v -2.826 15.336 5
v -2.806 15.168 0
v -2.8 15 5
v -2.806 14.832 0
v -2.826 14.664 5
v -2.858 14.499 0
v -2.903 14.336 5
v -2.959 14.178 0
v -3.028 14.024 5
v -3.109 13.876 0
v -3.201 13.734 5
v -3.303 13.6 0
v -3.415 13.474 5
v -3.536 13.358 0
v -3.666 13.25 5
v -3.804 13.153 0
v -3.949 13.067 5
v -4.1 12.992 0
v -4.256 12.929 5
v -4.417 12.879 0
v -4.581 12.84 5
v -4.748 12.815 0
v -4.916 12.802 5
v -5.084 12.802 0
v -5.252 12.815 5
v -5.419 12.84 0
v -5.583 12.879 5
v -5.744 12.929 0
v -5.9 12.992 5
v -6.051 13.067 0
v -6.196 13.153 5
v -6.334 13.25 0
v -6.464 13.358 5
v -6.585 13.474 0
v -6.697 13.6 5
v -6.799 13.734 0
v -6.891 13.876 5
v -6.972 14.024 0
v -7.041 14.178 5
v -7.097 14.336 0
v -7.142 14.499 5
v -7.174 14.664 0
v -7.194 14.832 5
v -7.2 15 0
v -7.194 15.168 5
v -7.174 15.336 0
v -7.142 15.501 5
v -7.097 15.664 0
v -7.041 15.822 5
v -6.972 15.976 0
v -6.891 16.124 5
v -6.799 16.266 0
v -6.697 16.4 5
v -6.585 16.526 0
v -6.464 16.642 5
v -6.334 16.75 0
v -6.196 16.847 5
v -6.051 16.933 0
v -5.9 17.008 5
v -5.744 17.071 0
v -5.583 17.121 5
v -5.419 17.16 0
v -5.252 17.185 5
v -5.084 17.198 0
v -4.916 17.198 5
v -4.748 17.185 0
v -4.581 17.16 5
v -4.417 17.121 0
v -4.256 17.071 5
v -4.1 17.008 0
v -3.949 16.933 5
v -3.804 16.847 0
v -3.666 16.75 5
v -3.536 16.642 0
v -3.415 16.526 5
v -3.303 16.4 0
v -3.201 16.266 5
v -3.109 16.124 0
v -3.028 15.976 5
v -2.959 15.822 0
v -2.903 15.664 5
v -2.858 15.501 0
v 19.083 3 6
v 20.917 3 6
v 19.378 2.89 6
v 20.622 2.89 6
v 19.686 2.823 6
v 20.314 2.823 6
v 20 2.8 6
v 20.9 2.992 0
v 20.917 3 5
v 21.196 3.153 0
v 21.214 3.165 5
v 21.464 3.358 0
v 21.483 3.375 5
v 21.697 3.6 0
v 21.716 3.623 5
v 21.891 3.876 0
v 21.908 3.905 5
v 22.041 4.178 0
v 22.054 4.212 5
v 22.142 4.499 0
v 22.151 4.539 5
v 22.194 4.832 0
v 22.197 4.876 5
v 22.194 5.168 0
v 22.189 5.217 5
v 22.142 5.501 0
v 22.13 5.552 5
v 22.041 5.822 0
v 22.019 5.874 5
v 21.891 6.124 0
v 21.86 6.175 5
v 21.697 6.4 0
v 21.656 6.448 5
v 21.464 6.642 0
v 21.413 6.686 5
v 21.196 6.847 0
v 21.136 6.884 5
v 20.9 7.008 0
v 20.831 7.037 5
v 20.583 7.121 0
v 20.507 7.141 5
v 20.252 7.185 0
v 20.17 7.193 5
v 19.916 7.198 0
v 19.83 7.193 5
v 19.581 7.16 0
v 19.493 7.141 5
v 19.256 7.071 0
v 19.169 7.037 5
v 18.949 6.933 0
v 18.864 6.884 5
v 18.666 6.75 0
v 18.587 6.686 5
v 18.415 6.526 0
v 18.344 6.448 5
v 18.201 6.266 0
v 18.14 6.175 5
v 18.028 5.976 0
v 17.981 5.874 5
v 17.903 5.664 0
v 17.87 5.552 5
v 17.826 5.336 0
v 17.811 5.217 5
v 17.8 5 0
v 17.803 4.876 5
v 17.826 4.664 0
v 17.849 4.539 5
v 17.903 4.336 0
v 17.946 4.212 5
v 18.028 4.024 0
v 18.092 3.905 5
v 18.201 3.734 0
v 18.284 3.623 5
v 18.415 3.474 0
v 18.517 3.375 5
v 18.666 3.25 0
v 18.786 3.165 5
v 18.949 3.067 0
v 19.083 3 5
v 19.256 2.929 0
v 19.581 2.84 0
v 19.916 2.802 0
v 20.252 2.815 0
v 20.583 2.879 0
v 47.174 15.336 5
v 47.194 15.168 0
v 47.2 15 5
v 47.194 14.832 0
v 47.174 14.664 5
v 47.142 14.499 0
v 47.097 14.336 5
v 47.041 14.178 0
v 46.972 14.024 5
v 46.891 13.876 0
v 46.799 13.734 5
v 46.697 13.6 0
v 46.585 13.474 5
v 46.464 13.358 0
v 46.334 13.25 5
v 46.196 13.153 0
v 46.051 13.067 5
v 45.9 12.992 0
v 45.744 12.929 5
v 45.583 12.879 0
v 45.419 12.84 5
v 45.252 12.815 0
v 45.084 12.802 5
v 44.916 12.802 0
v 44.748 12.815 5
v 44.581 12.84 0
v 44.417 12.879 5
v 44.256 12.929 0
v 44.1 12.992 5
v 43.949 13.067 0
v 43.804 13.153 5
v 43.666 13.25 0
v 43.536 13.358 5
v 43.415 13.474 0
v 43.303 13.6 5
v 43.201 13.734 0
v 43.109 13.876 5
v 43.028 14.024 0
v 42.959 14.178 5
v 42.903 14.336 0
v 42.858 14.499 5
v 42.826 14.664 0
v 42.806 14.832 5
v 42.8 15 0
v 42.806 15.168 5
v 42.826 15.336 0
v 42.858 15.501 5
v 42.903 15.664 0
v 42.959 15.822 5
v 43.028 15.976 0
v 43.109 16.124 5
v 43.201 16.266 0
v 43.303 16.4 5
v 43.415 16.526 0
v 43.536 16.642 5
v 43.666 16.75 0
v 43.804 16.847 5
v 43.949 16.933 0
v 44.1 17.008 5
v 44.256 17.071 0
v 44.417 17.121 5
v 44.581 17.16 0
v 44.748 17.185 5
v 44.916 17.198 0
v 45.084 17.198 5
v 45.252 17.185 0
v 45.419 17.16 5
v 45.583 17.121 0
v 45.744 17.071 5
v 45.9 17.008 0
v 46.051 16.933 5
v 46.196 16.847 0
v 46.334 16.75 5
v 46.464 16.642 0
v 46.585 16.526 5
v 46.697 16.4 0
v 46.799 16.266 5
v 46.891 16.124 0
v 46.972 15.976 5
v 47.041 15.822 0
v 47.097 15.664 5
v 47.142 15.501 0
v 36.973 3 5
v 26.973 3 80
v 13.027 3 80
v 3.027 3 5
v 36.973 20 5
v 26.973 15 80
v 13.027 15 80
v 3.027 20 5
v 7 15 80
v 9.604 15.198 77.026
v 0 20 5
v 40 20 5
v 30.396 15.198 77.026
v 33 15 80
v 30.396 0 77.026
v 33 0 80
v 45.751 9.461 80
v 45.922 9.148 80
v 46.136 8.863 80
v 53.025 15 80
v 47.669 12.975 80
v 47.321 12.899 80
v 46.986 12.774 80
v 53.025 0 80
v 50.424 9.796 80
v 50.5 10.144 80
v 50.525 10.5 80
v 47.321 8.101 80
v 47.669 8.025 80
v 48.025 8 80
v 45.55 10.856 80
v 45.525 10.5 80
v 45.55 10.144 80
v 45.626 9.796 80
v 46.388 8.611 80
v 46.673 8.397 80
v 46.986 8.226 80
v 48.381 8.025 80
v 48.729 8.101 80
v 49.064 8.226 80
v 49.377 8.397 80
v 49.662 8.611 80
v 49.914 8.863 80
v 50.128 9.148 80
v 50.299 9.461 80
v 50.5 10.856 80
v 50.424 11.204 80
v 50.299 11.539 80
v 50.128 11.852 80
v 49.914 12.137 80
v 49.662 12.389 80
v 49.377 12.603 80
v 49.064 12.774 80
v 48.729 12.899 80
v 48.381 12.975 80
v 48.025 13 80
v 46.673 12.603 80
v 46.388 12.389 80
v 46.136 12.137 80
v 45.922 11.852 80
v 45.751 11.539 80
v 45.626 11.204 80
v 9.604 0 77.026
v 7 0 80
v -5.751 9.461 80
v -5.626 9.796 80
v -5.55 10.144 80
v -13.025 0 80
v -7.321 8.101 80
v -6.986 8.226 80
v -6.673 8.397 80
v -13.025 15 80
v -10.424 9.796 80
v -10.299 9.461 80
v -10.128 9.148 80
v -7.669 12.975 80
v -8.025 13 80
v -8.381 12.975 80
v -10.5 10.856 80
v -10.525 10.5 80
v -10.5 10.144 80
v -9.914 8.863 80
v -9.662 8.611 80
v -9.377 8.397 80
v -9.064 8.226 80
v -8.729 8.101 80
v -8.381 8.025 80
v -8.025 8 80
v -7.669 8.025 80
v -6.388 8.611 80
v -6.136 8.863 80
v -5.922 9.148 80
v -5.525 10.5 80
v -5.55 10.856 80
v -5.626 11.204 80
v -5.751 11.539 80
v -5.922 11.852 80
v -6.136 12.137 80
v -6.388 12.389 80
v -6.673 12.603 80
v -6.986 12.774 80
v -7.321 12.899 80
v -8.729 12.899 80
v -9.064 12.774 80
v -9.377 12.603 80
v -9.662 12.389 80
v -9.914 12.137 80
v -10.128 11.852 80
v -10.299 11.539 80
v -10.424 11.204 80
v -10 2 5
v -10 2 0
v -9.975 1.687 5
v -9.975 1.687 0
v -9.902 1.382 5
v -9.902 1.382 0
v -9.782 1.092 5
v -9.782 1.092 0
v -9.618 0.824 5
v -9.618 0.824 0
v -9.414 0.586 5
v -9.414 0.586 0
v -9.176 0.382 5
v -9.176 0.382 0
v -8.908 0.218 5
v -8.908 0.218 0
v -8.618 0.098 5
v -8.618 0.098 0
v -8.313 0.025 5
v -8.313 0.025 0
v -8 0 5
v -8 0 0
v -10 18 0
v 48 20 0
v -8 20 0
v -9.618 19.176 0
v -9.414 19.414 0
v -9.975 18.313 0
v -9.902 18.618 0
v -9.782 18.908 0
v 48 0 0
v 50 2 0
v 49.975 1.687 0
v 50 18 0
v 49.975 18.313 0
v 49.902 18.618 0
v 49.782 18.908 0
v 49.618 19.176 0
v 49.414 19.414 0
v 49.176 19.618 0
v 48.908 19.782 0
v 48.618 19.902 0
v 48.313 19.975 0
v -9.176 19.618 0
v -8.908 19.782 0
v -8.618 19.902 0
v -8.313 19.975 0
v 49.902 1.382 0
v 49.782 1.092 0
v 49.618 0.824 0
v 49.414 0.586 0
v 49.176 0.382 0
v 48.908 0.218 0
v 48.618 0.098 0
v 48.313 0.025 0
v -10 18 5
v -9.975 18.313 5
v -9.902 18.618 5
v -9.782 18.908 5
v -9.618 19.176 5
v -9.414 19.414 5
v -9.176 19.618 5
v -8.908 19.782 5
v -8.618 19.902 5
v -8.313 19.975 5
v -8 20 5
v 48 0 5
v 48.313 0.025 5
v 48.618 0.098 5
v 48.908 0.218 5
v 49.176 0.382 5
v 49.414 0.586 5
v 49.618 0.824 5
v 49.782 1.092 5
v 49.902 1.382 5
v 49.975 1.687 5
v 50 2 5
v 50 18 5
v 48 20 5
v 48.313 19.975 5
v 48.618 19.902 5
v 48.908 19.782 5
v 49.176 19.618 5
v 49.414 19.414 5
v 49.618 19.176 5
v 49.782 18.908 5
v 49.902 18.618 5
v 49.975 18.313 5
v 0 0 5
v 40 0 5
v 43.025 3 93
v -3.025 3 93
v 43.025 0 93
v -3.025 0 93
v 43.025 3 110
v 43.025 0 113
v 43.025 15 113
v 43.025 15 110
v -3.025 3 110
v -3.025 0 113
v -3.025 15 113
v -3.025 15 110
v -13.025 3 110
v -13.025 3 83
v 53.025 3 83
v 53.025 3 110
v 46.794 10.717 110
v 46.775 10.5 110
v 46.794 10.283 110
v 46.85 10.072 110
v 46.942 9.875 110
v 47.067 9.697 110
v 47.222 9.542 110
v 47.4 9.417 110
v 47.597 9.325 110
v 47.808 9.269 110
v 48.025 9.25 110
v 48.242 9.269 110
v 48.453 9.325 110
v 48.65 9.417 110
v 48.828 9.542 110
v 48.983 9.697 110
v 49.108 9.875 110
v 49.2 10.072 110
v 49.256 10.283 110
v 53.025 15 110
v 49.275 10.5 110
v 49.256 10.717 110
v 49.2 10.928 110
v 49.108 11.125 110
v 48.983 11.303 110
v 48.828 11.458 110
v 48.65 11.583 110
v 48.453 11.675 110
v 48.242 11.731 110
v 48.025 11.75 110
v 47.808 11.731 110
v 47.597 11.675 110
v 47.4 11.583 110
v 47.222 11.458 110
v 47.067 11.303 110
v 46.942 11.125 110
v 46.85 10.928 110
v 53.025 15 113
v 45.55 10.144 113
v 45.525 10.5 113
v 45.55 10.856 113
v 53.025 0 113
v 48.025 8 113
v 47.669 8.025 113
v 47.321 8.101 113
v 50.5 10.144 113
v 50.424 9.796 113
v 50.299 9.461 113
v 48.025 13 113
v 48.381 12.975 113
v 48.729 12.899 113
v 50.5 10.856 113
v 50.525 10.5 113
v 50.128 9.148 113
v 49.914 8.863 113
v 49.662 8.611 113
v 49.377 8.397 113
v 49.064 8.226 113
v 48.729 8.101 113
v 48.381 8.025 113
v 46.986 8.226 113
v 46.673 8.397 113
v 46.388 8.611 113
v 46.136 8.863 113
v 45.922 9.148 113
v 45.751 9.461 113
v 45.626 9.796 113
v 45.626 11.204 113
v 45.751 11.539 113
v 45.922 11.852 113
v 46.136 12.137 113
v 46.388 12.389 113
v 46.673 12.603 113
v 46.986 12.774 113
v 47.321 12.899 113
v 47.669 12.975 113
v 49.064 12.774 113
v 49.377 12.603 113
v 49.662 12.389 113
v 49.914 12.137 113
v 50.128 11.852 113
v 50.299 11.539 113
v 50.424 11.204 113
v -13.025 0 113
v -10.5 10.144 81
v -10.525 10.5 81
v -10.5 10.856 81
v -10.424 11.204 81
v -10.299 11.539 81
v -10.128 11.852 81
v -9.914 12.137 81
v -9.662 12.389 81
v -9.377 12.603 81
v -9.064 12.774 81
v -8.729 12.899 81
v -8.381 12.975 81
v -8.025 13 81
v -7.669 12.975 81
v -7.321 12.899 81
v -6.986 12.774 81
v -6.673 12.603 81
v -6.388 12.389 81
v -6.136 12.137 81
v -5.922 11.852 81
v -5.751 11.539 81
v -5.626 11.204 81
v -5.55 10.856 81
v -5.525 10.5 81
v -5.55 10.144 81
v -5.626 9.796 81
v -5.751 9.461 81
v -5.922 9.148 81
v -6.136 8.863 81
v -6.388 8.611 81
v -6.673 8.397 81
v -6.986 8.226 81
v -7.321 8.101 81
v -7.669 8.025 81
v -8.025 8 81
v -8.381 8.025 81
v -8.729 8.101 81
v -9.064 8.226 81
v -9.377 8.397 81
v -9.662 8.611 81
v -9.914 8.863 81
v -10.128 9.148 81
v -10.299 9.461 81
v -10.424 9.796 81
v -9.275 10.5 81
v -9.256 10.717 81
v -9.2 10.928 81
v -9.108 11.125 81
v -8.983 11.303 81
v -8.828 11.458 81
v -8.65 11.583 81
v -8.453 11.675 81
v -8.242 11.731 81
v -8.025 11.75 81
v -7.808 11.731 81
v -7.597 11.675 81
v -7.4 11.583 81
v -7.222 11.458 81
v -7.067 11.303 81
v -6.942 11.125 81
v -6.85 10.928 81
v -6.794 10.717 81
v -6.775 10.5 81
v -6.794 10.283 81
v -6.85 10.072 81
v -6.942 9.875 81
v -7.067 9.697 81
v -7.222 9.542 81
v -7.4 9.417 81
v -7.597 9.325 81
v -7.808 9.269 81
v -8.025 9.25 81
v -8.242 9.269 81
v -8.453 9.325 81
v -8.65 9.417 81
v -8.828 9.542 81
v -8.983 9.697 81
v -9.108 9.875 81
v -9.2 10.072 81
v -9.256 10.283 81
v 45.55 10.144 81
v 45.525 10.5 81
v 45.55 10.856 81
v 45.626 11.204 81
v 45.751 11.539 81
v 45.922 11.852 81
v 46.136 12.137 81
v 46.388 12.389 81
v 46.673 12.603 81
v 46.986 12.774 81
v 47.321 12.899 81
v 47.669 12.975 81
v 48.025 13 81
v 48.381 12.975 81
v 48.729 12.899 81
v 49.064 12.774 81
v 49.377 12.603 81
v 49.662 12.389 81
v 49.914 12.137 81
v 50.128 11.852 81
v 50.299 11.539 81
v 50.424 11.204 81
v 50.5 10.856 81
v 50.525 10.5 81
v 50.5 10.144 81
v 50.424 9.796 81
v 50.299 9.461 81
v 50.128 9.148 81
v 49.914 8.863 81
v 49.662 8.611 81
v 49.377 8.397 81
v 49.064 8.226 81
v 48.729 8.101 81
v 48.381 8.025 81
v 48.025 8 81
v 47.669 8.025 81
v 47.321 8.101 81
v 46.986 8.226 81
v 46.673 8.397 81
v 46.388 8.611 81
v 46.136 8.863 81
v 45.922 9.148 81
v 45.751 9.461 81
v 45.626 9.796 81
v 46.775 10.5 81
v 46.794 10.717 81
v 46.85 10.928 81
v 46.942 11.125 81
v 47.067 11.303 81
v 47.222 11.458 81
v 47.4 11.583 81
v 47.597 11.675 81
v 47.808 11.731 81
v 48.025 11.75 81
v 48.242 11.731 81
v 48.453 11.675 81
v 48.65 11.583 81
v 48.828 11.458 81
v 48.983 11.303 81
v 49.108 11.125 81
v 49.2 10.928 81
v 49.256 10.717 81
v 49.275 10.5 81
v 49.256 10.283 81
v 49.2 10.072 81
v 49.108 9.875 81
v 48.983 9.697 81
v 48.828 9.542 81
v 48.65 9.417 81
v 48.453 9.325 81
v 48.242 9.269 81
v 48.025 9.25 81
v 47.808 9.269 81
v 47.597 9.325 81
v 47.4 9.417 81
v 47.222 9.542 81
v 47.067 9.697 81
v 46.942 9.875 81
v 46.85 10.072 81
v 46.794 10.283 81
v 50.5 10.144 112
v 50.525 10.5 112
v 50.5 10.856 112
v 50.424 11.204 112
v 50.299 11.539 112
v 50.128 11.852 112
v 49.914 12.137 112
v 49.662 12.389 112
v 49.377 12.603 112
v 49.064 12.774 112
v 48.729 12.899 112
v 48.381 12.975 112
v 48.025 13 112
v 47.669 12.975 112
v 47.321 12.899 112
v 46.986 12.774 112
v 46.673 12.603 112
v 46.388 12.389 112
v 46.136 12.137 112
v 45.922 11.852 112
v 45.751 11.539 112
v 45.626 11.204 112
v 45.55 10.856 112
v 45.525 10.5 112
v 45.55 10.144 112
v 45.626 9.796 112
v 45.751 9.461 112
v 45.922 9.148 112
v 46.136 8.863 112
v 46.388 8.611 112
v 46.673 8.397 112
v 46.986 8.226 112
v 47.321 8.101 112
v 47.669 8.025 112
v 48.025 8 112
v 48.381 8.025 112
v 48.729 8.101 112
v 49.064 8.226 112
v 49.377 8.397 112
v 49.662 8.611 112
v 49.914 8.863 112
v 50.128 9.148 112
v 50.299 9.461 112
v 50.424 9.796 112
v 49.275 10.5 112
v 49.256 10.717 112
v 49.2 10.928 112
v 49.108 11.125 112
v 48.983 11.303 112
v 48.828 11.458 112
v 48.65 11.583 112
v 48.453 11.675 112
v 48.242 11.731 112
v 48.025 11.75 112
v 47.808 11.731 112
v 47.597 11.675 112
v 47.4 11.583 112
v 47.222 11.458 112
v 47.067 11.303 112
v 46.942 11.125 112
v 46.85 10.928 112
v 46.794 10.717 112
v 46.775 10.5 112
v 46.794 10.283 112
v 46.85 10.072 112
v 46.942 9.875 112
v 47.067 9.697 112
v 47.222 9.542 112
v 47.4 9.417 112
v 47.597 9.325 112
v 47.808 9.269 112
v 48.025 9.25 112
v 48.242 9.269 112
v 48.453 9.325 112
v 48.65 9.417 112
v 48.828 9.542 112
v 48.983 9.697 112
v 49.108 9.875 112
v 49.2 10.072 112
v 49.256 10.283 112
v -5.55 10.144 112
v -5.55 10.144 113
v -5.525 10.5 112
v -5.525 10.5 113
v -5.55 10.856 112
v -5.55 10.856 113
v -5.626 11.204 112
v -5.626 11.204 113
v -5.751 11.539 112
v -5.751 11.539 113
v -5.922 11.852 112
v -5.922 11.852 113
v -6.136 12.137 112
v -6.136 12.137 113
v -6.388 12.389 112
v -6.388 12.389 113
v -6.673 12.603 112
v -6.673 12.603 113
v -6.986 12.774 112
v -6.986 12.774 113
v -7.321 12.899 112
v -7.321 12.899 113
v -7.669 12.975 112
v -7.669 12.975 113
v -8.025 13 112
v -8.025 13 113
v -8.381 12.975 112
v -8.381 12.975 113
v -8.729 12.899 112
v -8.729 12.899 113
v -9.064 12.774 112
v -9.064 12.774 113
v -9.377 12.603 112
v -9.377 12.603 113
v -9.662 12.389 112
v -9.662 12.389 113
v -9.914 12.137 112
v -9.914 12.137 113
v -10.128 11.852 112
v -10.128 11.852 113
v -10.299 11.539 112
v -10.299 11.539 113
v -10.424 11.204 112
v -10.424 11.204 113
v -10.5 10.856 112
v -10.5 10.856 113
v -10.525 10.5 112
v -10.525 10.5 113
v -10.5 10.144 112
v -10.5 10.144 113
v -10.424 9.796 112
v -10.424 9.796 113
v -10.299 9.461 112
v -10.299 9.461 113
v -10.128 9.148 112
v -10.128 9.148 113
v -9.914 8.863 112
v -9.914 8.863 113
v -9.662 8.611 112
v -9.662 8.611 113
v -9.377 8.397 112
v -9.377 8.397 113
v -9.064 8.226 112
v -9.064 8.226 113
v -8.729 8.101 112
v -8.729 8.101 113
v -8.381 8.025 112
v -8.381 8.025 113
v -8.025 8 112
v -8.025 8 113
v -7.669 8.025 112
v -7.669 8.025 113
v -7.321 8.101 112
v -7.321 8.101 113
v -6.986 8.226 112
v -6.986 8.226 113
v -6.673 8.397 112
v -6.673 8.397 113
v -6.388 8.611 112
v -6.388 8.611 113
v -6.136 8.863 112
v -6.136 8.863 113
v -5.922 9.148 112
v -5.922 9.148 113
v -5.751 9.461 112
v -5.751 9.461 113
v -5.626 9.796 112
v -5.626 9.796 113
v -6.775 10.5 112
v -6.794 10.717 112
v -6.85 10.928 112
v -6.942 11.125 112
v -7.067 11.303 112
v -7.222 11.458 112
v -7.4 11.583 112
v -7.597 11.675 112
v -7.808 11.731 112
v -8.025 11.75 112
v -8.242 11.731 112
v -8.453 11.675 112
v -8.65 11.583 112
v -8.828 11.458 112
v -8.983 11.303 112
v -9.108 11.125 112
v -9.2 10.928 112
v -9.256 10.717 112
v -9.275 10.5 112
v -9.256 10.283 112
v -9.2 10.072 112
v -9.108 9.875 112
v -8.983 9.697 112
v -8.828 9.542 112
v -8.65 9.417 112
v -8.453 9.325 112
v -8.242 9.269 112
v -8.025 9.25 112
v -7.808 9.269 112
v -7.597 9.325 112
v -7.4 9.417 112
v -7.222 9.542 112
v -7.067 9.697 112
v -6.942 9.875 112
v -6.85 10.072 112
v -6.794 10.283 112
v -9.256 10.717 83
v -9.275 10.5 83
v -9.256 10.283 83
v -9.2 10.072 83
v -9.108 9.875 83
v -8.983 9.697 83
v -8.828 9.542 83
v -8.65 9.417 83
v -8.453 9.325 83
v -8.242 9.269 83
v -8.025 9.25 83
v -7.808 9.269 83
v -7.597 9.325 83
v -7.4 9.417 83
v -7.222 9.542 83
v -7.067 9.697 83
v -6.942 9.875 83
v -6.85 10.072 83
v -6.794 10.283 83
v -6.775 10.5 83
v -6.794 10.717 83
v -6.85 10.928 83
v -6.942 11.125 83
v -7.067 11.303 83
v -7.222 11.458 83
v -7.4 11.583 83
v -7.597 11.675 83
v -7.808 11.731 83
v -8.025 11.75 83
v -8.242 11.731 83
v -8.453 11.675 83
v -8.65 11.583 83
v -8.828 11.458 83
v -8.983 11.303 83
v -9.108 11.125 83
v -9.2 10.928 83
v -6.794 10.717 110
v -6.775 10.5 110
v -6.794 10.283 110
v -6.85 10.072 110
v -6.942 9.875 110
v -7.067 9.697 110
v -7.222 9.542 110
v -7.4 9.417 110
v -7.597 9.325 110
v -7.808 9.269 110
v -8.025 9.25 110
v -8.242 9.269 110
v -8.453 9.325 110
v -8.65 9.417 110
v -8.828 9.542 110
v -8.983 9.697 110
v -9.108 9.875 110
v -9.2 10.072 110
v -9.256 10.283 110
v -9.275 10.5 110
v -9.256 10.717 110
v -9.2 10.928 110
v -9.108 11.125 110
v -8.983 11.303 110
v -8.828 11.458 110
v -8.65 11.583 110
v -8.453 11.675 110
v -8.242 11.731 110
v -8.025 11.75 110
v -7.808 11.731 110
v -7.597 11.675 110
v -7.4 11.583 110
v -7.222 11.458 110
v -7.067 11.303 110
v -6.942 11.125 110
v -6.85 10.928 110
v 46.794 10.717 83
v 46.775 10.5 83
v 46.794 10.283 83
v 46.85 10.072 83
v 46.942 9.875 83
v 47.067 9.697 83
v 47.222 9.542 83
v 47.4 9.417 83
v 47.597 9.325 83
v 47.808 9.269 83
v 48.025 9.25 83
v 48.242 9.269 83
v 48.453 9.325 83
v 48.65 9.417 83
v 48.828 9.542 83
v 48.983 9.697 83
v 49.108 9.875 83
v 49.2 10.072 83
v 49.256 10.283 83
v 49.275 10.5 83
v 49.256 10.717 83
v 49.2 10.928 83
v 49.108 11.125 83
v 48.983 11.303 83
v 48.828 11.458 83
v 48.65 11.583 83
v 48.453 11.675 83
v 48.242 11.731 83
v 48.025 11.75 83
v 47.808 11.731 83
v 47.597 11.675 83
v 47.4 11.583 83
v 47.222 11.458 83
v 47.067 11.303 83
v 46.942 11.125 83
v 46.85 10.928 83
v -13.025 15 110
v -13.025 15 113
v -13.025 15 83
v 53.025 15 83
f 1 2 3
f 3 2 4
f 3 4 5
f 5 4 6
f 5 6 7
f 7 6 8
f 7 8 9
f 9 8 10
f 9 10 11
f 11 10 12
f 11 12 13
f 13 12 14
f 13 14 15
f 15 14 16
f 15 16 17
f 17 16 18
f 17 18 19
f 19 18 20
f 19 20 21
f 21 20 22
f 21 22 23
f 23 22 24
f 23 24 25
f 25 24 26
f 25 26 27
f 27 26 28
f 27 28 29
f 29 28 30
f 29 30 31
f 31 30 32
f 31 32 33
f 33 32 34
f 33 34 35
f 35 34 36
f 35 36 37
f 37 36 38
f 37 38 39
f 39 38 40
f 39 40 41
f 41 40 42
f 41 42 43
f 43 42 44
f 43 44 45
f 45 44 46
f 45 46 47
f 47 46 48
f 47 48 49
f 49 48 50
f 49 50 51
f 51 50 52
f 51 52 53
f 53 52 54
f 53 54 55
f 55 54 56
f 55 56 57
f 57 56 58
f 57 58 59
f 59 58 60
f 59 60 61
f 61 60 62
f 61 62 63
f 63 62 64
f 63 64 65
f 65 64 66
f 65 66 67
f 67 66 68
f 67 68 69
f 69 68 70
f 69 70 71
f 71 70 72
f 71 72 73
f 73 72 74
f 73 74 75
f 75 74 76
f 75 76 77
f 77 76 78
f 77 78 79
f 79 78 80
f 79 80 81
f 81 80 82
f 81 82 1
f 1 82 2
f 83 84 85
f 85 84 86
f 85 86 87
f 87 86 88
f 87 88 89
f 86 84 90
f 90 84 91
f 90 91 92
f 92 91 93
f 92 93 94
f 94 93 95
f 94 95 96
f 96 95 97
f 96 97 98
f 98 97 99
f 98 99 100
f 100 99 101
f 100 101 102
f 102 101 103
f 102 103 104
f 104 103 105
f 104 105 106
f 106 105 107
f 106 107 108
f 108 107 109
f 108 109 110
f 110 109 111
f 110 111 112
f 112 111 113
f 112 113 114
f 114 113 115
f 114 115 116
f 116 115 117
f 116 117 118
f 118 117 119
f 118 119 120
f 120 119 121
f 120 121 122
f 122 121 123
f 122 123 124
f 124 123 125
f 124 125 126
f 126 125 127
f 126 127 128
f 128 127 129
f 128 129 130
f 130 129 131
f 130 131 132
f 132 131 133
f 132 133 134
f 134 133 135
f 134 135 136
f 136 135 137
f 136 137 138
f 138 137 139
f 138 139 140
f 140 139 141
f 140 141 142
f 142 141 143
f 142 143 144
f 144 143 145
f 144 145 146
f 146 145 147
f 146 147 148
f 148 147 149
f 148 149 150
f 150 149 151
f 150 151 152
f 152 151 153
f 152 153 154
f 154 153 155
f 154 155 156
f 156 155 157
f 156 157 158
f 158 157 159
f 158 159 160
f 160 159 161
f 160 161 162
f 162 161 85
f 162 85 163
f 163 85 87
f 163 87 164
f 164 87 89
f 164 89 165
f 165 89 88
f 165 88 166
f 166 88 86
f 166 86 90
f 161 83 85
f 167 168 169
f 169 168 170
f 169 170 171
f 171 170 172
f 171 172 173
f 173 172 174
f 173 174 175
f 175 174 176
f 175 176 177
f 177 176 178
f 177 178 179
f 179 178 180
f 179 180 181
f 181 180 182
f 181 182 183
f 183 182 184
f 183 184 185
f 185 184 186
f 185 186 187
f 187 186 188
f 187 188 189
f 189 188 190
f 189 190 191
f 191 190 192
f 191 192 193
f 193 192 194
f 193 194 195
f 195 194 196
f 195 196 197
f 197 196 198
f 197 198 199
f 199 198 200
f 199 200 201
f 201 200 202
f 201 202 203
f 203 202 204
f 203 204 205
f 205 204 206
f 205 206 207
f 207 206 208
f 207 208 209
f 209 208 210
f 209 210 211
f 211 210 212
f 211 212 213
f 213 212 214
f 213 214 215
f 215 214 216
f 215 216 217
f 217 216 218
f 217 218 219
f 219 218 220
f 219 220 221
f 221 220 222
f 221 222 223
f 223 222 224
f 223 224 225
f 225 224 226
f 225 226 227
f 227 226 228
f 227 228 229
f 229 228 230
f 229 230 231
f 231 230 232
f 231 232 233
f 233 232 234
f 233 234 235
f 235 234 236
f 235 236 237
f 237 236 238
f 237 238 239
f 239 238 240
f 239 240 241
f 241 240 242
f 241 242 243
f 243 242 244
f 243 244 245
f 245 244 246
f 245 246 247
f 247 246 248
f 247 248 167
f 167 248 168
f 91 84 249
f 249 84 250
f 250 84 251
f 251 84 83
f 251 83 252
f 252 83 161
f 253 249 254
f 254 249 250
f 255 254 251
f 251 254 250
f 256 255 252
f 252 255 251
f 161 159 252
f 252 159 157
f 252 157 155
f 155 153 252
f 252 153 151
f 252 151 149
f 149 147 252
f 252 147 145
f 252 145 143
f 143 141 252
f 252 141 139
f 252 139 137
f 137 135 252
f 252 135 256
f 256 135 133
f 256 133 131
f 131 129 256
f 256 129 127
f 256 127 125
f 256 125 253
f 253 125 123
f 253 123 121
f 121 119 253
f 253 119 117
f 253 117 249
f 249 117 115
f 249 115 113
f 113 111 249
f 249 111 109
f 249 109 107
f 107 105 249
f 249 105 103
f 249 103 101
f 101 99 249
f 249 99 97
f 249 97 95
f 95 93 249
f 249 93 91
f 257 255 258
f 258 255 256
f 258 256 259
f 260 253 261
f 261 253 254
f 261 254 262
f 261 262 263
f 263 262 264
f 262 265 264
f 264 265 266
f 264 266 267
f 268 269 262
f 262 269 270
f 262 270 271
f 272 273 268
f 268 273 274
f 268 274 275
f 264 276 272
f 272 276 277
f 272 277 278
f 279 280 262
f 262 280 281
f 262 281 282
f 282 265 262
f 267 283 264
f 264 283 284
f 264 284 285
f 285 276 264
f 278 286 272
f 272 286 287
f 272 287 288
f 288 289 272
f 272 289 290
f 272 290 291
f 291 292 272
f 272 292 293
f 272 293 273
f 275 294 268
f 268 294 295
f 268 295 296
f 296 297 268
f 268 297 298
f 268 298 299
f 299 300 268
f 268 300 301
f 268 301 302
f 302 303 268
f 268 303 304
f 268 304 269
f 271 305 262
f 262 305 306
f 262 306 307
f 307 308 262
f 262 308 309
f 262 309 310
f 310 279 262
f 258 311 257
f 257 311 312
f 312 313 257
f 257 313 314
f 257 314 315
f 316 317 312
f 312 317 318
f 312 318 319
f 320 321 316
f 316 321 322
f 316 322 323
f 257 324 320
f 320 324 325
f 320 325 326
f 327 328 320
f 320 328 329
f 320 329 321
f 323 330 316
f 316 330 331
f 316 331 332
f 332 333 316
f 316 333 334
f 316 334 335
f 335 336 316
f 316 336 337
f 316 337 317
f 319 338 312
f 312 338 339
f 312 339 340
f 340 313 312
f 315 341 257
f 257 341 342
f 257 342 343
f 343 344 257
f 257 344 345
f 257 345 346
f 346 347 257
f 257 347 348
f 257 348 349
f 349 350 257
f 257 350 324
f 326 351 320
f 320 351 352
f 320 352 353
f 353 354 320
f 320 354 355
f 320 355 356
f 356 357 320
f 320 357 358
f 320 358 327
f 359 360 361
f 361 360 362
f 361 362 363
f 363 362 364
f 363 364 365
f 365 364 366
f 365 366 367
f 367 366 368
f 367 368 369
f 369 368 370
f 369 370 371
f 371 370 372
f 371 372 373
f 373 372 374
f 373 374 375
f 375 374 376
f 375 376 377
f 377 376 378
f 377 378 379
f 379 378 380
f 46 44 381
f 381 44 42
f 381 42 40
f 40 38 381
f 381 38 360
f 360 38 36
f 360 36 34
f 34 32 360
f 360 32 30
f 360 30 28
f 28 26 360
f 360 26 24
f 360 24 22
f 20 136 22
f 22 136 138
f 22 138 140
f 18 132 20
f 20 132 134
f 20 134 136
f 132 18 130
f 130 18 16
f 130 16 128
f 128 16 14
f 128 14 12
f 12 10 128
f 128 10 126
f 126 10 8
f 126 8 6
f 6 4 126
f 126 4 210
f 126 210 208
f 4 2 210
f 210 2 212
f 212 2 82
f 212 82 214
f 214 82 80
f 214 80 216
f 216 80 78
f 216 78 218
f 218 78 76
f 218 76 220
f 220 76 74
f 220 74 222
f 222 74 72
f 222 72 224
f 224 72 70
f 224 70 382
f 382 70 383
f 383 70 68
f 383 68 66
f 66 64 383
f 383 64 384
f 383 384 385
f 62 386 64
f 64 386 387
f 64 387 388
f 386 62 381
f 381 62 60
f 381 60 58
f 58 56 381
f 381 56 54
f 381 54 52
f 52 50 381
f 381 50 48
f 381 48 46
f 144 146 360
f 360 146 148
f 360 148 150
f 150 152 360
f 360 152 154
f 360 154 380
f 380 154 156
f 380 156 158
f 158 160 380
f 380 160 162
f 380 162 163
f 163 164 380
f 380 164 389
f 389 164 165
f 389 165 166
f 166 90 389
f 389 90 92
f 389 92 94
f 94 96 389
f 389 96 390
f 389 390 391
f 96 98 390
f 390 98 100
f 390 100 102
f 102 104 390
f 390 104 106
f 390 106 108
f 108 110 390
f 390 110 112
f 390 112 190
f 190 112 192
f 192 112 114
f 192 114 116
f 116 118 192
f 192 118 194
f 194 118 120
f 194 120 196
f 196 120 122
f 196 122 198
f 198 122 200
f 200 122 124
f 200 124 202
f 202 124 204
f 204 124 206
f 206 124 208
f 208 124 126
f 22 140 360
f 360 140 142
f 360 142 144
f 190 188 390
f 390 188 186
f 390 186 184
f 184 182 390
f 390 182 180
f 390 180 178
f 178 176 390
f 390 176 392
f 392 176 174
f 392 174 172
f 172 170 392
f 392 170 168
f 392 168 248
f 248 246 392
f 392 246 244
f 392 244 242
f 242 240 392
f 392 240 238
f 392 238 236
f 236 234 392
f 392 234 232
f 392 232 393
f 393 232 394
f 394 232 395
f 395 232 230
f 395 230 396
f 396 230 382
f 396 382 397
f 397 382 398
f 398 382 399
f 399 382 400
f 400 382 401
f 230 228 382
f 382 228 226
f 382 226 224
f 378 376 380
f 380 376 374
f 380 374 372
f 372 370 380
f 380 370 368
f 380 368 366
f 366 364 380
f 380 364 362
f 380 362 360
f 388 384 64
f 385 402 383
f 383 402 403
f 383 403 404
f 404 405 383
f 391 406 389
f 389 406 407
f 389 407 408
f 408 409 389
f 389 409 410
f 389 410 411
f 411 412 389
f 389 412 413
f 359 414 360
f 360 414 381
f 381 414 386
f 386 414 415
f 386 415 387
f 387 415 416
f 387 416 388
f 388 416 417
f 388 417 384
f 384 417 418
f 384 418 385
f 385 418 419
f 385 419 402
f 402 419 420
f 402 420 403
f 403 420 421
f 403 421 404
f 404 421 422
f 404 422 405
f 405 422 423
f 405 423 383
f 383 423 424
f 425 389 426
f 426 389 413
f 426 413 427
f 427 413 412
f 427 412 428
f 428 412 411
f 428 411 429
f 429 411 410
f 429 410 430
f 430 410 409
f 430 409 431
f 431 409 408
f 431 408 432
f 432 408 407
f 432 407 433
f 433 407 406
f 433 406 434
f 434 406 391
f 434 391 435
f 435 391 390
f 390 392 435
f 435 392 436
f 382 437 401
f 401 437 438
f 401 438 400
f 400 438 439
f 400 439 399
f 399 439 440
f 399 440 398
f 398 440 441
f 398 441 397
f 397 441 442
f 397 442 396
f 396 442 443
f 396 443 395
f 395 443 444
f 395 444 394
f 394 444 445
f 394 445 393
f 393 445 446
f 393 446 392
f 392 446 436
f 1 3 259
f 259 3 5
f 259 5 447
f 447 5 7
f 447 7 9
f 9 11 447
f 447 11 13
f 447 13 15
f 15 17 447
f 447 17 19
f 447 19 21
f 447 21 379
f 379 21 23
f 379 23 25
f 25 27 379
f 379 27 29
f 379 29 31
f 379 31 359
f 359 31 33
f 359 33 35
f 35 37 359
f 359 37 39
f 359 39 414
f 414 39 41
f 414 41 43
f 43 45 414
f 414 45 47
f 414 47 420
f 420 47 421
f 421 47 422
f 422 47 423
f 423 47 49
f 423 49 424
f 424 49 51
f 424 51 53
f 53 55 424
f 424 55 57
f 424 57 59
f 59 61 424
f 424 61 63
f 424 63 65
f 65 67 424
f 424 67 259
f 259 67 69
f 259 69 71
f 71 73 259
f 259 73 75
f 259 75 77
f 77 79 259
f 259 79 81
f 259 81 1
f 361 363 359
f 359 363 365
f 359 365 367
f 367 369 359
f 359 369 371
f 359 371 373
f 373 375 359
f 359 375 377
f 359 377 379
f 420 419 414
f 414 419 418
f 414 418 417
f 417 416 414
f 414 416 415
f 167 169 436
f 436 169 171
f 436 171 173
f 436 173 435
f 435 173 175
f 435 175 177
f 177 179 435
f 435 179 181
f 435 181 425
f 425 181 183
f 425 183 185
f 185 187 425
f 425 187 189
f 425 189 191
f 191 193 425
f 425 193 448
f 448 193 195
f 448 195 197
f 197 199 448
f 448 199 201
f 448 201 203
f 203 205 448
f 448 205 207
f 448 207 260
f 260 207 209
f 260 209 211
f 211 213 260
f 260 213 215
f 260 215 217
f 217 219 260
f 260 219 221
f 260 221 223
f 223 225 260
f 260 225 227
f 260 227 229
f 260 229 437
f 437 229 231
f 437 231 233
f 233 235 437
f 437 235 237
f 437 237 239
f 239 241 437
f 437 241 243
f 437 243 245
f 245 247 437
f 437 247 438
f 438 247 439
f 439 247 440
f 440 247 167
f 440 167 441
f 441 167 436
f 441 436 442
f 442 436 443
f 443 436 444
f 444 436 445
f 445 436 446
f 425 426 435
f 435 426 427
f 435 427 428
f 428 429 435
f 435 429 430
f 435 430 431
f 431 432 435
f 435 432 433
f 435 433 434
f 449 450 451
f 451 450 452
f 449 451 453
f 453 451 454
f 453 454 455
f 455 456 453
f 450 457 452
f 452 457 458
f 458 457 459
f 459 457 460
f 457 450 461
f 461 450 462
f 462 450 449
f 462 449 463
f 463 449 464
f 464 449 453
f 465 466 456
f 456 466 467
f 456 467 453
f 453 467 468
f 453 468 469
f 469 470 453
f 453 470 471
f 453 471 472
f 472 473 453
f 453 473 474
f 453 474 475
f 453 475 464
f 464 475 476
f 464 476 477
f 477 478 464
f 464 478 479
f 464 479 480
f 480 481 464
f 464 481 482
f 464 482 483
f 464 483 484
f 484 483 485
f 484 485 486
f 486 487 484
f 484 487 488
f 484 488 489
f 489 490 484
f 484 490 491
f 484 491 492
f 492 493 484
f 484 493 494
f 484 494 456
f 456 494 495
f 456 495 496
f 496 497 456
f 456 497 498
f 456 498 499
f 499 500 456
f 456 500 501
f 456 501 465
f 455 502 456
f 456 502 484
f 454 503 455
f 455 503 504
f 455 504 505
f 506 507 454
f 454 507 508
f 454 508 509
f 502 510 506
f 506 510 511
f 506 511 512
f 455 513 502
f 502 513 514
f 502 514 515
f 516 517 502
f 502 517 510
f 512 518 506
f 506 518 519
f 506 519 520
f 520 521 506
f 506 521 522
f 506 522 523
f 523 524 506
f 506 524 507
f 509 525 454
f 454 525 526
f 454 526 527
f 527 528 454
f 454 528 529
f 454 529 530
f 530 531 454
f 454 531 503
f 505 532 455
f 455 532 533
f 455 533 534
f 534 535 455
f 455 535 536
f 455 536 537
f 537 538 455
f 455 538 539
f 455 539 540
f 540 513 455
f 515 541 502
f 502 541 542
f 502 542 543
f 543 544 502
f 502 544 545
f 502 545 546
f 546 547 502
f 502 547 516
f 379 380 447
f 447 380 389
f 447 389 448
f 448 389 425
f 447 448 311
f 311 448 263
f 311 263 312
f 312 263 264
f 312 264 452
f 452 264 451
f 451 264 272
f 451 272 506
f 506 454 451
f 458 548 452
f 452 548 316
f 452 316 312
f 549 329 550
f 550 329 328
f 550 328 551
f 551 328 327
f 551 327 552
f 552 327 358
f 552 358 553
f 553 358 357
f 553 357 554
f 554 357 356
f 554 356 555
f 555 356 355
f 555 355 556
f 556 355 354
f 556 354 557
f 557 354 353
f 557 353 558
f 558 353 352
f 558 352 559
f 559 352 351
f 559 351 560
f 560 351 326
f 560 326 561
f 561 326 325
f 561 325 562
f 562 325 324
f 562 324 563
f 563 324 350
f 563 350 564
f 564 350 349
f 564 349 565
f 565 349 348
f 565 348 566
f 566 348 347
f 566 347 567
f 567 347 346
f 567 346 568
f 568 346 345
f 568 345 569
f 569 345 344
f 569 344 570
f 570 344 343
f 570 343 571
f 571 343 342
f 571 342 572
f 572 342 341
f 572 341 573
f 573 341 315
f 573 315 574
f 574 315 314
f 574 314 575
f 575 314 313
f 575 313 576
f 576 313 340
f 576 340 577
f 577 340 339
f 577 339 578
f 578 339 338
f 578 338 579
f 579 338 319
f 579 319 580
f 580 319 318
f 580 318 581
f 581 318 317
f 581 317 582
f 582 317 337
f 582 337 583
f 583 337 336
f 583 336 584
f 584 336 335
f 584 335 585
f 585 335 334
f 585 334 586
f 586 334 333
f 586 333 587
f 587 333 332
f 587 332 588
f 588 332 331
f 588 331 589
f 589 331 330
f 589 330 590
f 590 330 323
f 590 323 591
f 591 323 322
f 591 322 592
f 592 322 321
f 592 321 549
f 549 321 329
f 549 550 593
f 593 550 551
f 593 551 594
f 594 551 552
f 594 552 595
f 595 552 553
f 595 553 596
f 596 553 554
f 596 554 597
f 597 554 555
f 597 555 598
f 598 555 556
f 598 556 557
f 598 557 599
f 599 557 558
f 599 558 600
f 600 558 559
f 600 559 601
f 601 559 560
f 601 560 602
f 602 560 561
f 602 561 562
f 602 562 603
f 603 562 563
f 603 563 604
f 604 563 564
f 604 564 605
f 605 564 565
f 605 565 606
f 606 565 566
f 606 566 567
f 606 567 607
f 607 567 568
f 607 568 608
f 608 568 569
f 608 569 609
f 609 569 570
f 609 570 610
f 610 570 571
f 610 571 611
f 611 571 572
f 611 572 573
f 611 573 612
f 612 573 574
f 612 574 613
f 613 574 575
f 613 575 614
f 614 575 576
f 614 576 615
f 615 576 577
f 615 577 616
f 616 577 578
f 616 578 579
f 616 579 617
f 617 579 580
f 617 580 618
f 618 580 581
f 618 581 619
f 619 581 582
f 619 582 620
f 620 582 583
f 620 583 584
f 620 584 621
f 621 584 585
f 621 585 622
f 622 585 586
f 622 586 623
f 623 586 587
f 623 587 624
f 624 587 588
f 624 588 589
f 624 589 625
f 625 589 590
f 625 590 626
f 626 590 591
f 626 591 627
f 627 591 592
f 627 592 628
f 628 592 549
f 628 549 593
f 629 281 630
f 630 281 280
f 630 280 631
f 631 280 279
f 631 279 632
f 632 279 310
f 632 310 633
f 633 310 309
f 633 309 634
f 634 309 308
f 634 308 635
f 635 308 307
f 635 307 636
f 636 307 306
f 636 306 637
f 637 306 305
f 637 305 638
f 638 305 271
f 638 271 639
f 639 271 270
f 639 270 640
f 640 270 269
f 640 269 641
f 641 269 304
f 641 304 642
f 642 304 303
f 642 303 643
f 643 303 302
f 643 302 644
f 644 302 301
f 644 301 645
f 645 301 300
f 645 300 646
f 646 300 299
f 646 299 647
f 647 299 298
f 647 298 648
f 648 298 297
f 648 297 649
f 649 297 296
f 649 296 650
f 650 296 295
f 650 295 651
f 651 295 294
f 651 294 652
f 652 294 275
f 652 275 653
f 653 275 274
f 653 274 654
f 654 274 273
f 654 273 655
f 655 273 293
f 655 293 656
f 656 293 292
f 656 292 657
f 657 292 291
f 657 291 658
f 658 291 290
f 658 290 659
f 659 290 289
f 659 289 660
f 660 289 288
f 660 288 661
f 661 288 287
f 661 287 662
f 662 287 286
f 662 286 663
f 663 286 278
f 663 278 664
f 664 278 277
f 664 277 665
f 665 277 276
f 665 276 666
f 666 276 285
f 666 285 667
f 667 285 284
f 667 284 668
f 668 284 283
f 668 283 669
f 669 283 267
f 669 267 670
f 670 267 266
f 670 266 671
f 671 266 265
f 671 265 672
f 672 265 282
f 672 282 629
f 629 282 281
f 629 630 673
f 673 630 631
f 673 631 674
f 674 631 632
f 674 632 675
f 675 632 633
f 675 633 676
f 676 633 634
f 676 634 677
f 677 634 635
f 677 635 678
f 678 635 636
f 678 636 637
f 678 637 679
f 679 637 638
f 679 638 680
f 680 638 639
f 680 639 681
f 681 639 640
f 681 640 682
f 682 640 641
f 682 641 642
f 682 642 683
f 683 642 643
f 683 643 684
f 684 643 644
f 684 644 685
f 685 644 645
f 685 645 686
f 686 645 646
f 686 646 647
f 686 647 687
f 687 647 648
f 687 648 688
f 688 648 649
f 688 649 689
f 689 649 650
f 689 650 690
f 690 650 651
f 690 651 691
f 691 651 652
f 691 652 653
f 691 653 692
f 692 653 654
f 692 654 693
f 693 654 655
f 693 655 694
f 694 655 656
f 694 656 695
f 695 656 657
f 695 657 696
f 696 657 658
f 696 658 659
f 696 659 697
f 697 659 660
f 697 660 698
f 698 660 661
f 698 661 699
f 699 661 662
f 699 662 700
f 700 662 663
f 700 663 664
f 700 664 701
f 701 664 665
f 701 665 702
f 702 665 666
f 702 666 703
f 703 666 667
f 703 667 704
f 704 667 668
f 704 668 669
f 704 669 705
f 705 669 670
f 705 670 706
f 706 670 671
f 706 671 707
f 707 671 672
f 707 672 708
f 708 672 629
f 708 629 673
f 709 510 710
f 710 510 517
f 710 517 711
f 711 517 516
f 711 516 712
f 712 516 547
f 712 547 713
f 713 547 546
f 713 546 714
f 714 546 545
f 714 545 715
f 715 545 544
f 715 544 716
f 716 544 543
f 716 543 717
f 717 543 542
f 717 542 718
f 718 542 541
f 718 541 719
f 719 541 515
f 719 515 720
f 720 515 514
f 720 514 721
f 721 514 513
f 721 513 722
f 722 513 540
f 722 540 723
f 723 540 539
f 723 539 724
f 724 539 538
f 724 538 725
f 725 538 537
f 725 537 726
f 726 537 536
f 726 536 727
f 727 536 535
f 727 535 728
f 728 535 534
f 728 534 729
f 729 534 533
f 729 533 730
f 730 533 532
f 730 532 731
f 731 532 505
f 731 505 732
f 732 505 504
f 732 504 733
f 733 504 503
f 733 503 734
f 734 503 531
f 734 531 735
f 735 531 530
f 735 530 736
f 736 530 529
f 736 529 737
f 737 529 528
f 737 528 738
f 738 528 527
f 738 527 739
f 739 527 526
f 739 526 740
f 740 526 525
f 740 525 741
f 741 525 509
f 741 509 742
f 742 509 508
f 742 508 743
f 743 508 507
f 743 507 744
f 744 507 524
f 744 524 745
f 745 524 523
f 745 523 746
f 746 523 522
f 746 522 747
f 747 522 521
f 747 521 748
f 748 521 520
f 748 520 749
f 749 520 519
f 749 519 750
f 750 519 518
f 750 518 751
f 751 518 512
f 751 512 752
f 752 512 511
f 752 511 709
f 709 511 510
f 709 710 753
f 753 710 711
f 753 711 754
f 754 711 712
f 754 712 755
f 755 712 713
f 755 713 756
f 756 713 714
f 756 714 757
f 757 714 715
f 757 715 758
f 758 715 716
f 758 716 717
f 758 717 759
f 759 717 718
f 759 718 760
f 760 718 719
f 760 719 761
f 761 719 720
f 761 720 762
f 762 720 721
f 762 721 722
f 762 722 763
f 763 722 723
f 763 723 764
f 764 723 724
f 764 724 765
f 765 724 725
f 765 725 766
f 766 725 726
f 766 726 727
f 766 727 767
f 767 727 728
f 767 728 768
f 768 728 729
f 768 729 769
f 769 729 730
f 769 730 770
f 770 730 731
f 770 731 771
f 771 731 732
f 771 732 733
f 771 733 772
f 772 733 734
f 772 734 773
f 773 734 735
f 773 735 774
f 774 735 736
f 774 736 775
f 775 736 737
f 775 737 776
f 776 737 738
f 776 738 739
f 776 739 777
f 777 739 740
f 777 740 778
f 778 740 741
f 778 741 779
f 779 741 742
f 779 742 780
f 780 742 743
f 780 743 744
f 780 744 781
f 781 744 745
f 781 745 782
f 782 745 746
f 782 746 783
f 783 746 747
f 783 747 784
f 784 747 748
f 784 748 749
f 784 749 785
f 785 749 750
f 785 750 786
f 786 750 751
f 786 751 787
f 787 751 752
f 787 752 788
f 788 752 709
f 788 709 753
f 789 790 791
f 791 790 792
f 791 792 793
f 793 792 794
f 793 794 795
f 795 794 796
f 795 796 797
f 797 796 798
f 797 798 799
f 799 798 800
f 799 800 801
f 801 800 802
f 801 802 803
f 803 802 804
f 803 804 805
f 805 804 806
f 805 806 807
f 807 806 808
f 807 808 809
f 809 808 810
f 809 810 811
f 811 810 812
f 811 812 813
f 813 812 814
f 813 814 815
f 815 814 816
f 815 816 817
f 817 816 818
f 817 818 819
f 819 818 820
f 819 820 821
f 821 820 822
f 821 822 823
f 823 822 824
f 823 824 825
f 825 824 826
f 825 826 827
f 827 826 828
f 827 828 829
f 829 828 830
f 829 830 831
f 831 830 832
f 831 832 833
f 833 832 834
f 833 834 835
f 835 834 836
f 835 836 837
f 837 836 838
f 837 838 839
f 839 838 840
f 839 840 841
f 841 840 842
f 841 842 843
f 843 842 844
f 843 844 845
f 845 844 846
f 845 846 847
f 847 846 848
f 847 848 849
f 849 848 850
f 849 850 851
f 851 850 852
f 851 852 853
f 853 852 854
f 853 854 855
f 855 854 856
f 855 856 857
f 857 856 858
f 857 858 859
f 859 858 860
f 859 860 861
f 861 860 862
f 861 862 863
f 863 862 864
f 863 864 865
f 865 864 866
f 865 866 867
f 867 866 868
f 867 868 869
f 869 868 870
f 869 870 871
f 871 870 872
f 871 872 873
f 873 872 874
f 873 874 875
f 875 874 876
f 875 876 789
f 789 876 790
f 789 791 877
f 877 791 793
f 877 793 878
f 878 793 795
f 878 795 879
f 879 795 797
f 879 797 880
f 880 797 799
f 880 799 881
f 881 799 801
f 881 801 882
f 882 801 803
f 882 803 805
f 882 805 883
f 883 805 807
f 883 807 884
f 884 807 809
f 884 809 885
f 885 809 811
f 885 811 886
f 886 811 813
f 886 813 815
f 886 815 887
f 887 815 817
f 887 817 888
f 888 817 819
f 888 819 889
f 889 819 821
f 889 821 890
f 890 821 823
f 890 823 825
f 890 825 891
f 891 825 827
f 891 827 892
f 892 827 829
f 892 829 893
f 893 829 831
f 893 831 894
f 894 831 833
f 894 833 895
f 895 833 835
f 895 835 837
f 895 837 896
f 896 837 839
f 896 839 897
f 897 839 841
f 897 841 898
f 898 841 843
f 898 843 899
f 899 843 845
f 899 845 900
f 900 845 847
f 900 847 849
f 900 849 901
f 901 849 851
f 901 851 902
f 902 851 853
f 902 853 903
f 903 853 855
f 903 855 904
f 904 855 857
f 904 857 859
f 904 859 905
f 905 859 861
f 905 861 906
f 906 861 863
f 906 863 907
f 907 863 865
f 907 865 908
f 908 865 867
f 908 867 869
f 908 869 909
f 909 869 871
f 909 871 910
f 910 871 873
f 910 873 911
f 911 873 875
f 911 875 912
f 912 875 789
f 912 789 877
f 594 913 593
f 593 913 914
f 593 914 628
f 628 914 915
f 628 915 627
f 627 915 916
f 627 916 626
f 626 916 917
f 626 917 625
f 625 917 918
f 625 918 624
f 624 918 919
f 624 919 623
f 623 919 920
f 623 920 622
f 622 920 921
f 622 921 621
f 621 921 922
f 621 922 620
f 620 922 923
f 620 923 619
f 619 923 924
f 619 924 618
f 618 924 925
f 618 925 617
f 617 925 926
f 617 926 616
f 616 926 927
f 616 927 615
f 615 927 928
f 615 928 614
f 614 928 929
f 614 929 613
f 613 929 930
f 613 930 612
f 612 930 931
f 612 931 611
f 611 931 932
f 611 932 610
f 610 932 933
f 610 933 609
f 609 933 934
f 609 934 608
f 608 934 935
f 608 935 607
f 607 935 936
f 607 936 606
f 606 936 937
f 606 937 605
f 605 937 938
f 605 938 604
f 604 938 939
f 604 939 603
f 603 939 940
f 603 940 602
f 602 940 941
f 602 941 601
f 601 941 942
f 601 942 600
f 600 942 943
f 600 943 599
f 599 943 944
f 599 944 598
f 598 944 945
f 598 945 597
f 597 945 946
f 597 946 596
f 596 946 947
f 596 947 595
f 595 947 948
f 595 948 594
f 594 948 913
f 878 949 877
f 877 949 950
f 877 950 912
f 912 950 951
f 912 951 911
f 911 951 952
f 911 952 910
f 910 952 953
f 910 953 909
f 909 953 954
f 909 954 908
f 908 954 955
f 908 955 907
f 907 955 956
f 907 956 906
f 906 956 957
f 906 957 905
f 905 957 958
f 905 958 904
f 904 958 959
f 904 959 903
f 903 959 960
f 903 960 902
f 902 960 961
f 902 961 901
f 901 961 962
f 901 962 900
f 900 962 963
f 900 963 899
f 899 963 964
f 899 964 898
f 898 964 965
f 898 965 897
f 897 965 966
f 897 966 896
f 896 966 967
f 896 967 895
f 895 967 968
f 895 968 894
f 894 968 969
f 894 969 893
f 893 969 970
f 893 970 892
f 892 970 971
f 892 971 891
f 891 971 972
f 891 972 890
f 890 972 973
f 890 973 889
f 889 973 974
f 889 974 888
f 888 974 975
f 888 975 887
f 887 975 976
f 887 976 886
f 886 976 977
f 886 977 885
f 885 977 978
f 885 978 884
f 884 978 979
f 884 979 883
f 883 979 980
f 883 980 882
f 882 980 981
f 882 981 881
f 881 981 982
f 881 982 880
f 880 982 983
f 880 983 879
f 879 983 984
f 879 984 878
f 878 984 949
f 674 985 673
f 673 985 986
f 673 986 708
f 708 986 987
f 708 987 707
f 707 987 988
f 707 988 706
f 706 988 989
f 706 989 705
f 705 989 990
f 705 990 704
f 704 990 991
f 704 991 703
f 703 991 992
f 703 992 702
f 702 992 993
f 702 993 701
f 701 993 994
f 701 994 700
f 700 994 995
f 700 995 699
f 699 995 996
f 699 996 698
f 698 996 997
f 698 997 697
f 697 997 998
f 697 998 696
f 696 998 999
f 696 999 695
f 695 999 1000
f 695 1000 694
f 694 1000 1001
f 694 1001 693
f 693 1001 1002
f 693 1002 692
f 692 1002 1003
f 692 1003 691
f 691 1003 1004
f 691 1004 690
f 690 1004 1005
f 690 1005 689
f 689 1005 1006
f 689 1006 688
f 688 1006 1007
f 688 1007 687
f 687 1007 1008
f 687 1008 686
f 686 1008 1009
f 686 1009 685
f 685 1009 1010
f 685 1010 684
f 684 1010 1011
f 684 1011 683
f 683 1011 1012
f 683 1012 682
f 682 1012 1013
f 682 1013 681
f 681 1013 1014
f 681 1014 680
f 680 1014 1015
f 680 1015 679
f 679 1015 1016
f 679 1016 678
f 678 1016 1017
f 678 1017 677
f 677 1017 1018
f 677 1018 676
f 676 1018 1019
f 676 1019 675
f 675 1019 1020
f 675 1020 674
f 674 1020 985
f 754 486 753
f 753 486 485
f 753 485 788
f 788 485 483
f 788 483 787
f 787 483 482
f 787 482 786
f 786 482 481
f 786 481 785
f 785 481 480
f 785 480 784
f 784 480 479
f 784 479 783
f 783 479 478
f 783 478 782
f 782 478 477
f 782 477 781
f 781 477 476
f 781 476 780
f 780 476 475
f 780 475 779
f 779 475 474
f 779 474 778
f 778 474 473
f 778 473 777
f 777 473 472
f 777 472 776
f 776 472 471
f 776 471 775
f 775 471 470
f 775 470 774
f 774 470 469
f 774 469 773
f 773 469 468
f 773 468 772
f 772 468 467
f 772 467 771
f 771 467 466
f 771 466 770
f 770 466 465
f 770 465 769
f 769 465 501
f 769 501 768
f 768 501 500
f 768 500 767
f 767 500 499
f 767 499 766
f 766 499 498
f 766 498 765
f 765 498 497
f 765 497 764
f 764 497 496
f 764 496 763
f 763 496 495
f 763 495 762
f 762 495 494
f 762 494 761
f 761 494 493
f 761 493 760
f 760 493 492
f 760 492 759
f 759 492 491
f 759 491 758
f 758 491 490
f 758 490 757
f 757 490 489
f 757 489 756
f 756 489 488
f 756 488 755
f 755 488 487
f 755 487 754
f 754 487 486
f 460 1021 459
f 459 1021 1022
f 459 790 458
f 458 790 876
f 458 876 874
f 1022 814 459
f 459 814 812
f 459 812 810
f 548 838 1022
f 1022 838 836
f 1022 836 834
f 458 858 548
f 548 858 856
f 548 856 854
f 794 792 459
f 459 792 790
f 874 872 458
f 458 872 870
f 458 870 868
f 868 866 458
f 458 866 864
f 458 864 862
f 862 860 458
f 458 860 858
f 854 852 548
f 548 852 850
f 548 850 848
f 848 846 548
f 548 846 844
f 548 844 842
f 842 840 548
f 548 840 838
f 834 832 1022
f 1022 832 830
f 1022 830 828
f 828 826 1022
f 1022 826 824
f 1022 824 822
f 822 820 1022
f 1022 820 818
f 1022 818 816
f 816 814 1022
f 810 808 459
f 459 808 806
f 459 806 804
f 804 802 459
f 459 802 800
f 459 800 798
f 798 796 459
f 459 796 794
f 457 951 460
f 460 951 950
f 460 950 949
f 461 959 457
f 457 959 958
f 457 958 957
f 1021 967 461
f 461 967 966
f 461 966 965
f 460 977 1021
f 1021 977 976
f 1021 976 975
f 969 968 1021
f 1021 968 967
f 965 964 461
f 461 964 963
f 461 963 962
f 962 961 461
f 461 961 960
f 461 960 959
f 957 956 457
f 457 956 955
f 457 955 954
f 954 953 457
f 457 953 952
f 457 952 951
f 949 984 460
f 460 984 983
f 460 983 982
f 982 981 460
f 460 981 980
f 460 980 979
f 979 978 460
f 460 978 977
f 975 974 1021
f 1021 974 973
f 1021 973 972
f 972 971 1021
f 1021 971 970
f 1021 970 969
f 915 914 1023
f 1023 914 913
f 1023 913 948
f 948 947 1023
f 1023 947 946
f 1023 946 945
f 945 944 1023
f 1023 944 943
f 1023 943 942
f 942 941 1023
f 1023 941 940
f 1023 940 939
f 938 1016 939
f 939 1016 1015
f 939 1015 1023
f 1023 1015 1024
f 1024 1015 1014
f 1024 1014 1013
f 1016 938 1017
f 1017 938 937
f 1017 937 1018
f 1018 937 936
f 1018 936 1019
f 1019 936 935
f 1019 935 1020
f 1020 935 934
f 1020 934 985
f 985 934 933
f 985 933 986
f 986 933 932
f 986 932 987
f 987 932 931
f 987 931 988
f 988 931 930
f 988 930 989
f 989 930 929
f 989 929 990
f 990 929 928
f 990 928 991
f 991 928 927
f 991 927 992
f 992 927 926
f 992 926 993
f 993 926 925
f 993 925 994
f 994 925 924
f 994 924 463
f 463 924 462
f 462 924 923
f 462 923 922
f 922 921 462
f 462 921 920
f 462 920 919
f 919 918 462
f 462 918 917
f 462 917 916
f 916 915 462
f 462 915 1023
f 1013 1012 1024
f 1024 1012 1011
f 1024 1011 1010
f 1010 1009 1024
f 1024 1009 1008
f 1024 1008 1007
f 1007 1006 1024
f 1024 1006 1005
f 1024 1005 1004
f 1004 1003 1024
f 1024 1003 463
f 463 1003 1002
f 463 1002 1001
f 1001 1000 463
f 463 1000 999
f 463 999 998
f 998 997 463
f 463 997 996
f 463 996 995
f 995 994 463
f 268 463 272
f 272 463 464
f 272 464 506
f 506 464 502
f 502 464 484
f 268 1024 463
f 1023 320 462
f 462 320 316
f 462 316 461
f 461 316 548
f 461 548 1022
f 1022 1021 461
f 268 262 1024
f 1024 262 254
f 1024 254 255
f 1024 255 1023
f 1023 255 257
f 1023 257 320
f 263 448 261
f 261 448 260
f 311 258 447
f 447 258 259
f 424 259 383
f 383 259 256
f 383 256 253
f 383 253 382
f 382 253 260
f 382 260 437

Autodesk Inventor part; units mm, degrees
ref_plane "YZ Plane" through (0, 0, 0) normal (1, 0, 0) x (0, 1, 0)
ref_plane "XZ Plane" through (0, 0, 0) normal (0, 1, 0) x (-1, 0, 0)
sketch "Sketch1" plane through (0, 0, 0) normal (0, 0, 1) x (1, 0, 0)
  line L0 (0, 0) -> (40, 0)
  line L1 (40, 0) -> (40, 20)
  line L2 (40, 20) -> (0, 20)
  line L3 (0, 20) -> (0, 0)
  dimension "d69" = 20
  dimension "d70" = 40
extrude "Extrusion1" add sketch "Sketch1" along normal blind 5
sketch "Sketch2" plane through (0, 0, 5) normal (0, 0, 1) x (1, 0, 0)
  line L0 (40, 20) -> (0, 20) projected
  line L1 (0, 0) -> (40, 0) projected
  line L2 (0, 20) -> (40, 20)
  line L3 (40, 20) -> (40, 0)
  line L4 (40, 0) -> (0, 0)
  line L5 (0, 0) -> (0, 20)
ref_plane "Work Plane1" through (0, 0, 80) normal (0, 0, 1) x (1, 0, 0)
sketch "Sketch3" plane through (0, 0, 80) normal (0, 0, 1) x (1, 0, 0)
  line L0 (10, 15) -> (30, 15)
  line L1 (30, 15) -> (30, 0)
  line L2 (30, 0) -> (10, 0)
  line L3 (10, 0) -> (10, 15)
  line L4 (0, 20) -> (0, 0) projected
  dimension "d71" = 20
  dimension "d72" = 15
  dimension "d73" = 10
loft "Loft1" add profiles "Sketch3" section 2 edges at (40, 10, 5) (20, 20, 5) (0, 10, 5) (20, 0, 5)
sketch "Sketch4" plane through (0, 0, 80) normal (0, 0, 1) x (1, 0, 0)
  line L0 (53.025, 0) -> (-13.025, 0)
  line L1 (-13.025, 0) -> (-13.025, 15)
  line L2 (-13.025, 15) -> (53.025, 15)
  line L3 (53.025, 15) -> (53.025, 0)
  line L4 (30, 0) -> (10, 0) projected
  point P0 (0, 0)
  dimension "d16" = 66.05
  dimension "d18" = 15
  dimension "d76" = 0
  dimension "d78" = 13.025
extrude "Extrusion2" add sketch "Sketch4" along normal blind 3
sketch "Sketch5" plane through (0, 0, 83) normal (0, 0, 1) x (1, 0, 0)
  line L0 (-13.025, 0) -> (53.025, 0) projected
  line L1 (-13.025, 15) -> (-13.025, 0) projected
  line L2 (53.025, 0) -> (-13.025, 0)
  line L3 (-13.025, 0) -> (-13.025, 3)
  line L4 (-13.025, 3) -> (53.025, 3)
  line L5 (53.025, 3) -> (53.025, 0)
  point P0 (0, 0)
  dimension "d22" = 3
extrude "Extrusion3" add sketch "Sketch5" along normal blind 27
sketch "Sketch6" plane through (0, 0, 110) normal (0, 0, 1) x (1, 0, 0)
  line L0 (53.025, 0) -> (53.025, 15) projected
  line L1 (-13.025, 15) -> (-13.025, 0) projected
  line L2 (53.025, 0) -> (-13.025, 0)
  line L3 (-13.025, 0) -> (-13.025, 15)
  line L4 (-13.025, 15) -> (53.025, 15)
  line L5 (53.025, 15) -> (53.025, 0)
  point P0 (0, 0)
extrude "Extrusion4" add sketch "Sketch6" along normal blind 3
sketch "Sketch7" plane through (0, 0, 113) normal (0, 0, 1) x (1, 0, 0)
  circle A0 centre (-8.025, 10.5) radius 1.25
  circle A1 centre (48.025, 10.5) radius 1.25
  line L0 (53.025, 3) -> (-13.025, 3) projected
  line L1 (-13.025, 3) -> (53.025, 3) projected
  point P0 (0, 0)
  point P1 (20, 3)
  dimension "d27" = 7.5
  dimension "d28" = 7.5
  dimension "d29" = 56.05
  dimension "d30" = 28.025
  dimension "d31" = 2.5
  dimension "d32" = 2.5
extrude "Extrusion5" cut sketch "Sketch7" against normal blind 35
sketch "Sketch10" plane through (0, 0, 113) normal (0, 0, 1) x (1, 0, 0)
  circle A0 centre (48.025, 10.5) radius 1.25 projected
  circle A1 centre (48.025, 10.5) radius 2.5
  circle A2 centre (-8.025, 10.5) radius 1.25 projected
  circle A3 centre (-8.025, 10.5) radius 2.5
  point P0 (0, 0)
  dimension "d61" = 5
  dimension "d62" = 5
extrude "Extrusion8" cut sketch "Sketch10" against normal blind 1
sketch "Sketch11" plane through (0, 0, 80) normal (0, 0, -1) x (-1, 0, 0)
  circle A0 centre (-48.025, 10.5) radius 1.25 projected
  circle A1 centre (-48.025, 10.5) radius 2.5
  circle A2 centre (8.025, 10.5) radius 1.25 projected
  circle A3 centre (8.025, 10.5) radius 2.5
  point P0 (0, 0)
  dimension "d65" = 5
  dimension "d66" = 5
extrude "Extrusion9" cut sketch "Sketch11" against normal blind 1
sketch "Sketch12" plane through (-13.025, 15, 110) normal (0, 1, 0) x (1, 0, 0)
  line L0 (0, -3) -> (66.05, -3) projected
  line L1 (10, -3) -> (56.05, -3)
  line L2 (56.05, -3) -> (56.05, 17)
  line L3 (56.05, 17) -> (10, 17)
  line L4 (10, 17) -> (10, -3)
  line L5 (0, 27) -> (0, 0) projected
  line L6 (66.05, 27) -> (66.05, 0) projected
  line L7 (66.05, 27) -> (0, 27) projected
  point P0 (13.025, 110)
  dimension "d79" = 10
  dimension "d80" = 10
  dimension "d81" = 10
extrude "Extrusion10" cut sketch "Sketch12" against normal blind 15
sketch "Sketch15" plane through (0, 0, 0) normal (0, 0, -1) x (-1, 0, 0)
  line L0 (-30, 0) -> (-53.025, 0) projected
  line L1 (10, 20) -> (-50, 20)
  line L2 (-50, 20) -> (-50, 0)
  line L3 (-50, 0) -> (10, 0)
  line L4 (10, 0) -> (10, 20)
  line L5 (0, 20) -> (0, 0) projected
  line L6 (-40, 0) -> (-40, 20) projected
  dimension "d119" = 10
  dimension "d120" = 10
extrude "Extrusion13" add sketch "Sketch15" against normal blind 5 contours L0 L2 L1 L6 | L5 L1 L4 L3
fillet "Fillet1" radius 2 4 edges at (50, 20, 2.5) (50, 0, 2.5) (-10, 20, 2.5) (-10, 0, 2.5)
chamfer "Chamfer1" distance 3 angle 45 2 edges at (10, 7.5, 80) (30, 7.5, 80)
sketch "Sketch17" plane through (0, 20, 5) normal (0, 1, 0) x (1, 0, 0)
  line L0 (40, 0) -> (0, 0) projected
  line L1 (3.0265, 0) -> (13.0265, -75)
  line L2 (33, -75) -> (7, -75) projected
  line L3 (36.9735, 0) -> (26.9735, -75)
  line L4 (9.6035, -72.0263) -> (0, 0) projected
  line L5 (30.3965, -72.0263) -> (40, 0) projected
  point P0 (0, 5)
  dimension "d138" = 3
  dimension "d139" = 3
extrude "Extrusion15" cut sketch "Sketch17" against normal blind 17
sketch "Sketch16" plane through (0, 0, 0) normal (0, 0, -1) x (-1, 0, 0)
  circle A0 centre (-45, 15) radius 2.2
  circle A1 centre (5, 15) radius 2.2
  circle A2 centre (-20, 5) radius 2.2
  line L0 (-50, 20) -> (-50, 0) projected
  line L1 (10, 20) -> (-50, 20) projected
  line L2 (10, 0) -> (10, 20) projected
  line L3 (-50, 0) -> (10, 0) projected
  point P0 (0, 0)
  dimension "d123" = 5
  dimension "d124" = 5
  dimension "d125" = 4.4
  dimension "d126" = 4.4
  dimension "d127" = 5
  dimension "d128" = 5
  dimension "d129" = 5
  dimension "d130" = 4.4
  dimension "d134" = 30
extrude "Extrusion16" cut sketch "Sketch16" against normal blind 6 contours A0 | A1 | A2
equation "\"d30\" = 0.5 * d29"
properties part number "RL_spider_camera_mount"
